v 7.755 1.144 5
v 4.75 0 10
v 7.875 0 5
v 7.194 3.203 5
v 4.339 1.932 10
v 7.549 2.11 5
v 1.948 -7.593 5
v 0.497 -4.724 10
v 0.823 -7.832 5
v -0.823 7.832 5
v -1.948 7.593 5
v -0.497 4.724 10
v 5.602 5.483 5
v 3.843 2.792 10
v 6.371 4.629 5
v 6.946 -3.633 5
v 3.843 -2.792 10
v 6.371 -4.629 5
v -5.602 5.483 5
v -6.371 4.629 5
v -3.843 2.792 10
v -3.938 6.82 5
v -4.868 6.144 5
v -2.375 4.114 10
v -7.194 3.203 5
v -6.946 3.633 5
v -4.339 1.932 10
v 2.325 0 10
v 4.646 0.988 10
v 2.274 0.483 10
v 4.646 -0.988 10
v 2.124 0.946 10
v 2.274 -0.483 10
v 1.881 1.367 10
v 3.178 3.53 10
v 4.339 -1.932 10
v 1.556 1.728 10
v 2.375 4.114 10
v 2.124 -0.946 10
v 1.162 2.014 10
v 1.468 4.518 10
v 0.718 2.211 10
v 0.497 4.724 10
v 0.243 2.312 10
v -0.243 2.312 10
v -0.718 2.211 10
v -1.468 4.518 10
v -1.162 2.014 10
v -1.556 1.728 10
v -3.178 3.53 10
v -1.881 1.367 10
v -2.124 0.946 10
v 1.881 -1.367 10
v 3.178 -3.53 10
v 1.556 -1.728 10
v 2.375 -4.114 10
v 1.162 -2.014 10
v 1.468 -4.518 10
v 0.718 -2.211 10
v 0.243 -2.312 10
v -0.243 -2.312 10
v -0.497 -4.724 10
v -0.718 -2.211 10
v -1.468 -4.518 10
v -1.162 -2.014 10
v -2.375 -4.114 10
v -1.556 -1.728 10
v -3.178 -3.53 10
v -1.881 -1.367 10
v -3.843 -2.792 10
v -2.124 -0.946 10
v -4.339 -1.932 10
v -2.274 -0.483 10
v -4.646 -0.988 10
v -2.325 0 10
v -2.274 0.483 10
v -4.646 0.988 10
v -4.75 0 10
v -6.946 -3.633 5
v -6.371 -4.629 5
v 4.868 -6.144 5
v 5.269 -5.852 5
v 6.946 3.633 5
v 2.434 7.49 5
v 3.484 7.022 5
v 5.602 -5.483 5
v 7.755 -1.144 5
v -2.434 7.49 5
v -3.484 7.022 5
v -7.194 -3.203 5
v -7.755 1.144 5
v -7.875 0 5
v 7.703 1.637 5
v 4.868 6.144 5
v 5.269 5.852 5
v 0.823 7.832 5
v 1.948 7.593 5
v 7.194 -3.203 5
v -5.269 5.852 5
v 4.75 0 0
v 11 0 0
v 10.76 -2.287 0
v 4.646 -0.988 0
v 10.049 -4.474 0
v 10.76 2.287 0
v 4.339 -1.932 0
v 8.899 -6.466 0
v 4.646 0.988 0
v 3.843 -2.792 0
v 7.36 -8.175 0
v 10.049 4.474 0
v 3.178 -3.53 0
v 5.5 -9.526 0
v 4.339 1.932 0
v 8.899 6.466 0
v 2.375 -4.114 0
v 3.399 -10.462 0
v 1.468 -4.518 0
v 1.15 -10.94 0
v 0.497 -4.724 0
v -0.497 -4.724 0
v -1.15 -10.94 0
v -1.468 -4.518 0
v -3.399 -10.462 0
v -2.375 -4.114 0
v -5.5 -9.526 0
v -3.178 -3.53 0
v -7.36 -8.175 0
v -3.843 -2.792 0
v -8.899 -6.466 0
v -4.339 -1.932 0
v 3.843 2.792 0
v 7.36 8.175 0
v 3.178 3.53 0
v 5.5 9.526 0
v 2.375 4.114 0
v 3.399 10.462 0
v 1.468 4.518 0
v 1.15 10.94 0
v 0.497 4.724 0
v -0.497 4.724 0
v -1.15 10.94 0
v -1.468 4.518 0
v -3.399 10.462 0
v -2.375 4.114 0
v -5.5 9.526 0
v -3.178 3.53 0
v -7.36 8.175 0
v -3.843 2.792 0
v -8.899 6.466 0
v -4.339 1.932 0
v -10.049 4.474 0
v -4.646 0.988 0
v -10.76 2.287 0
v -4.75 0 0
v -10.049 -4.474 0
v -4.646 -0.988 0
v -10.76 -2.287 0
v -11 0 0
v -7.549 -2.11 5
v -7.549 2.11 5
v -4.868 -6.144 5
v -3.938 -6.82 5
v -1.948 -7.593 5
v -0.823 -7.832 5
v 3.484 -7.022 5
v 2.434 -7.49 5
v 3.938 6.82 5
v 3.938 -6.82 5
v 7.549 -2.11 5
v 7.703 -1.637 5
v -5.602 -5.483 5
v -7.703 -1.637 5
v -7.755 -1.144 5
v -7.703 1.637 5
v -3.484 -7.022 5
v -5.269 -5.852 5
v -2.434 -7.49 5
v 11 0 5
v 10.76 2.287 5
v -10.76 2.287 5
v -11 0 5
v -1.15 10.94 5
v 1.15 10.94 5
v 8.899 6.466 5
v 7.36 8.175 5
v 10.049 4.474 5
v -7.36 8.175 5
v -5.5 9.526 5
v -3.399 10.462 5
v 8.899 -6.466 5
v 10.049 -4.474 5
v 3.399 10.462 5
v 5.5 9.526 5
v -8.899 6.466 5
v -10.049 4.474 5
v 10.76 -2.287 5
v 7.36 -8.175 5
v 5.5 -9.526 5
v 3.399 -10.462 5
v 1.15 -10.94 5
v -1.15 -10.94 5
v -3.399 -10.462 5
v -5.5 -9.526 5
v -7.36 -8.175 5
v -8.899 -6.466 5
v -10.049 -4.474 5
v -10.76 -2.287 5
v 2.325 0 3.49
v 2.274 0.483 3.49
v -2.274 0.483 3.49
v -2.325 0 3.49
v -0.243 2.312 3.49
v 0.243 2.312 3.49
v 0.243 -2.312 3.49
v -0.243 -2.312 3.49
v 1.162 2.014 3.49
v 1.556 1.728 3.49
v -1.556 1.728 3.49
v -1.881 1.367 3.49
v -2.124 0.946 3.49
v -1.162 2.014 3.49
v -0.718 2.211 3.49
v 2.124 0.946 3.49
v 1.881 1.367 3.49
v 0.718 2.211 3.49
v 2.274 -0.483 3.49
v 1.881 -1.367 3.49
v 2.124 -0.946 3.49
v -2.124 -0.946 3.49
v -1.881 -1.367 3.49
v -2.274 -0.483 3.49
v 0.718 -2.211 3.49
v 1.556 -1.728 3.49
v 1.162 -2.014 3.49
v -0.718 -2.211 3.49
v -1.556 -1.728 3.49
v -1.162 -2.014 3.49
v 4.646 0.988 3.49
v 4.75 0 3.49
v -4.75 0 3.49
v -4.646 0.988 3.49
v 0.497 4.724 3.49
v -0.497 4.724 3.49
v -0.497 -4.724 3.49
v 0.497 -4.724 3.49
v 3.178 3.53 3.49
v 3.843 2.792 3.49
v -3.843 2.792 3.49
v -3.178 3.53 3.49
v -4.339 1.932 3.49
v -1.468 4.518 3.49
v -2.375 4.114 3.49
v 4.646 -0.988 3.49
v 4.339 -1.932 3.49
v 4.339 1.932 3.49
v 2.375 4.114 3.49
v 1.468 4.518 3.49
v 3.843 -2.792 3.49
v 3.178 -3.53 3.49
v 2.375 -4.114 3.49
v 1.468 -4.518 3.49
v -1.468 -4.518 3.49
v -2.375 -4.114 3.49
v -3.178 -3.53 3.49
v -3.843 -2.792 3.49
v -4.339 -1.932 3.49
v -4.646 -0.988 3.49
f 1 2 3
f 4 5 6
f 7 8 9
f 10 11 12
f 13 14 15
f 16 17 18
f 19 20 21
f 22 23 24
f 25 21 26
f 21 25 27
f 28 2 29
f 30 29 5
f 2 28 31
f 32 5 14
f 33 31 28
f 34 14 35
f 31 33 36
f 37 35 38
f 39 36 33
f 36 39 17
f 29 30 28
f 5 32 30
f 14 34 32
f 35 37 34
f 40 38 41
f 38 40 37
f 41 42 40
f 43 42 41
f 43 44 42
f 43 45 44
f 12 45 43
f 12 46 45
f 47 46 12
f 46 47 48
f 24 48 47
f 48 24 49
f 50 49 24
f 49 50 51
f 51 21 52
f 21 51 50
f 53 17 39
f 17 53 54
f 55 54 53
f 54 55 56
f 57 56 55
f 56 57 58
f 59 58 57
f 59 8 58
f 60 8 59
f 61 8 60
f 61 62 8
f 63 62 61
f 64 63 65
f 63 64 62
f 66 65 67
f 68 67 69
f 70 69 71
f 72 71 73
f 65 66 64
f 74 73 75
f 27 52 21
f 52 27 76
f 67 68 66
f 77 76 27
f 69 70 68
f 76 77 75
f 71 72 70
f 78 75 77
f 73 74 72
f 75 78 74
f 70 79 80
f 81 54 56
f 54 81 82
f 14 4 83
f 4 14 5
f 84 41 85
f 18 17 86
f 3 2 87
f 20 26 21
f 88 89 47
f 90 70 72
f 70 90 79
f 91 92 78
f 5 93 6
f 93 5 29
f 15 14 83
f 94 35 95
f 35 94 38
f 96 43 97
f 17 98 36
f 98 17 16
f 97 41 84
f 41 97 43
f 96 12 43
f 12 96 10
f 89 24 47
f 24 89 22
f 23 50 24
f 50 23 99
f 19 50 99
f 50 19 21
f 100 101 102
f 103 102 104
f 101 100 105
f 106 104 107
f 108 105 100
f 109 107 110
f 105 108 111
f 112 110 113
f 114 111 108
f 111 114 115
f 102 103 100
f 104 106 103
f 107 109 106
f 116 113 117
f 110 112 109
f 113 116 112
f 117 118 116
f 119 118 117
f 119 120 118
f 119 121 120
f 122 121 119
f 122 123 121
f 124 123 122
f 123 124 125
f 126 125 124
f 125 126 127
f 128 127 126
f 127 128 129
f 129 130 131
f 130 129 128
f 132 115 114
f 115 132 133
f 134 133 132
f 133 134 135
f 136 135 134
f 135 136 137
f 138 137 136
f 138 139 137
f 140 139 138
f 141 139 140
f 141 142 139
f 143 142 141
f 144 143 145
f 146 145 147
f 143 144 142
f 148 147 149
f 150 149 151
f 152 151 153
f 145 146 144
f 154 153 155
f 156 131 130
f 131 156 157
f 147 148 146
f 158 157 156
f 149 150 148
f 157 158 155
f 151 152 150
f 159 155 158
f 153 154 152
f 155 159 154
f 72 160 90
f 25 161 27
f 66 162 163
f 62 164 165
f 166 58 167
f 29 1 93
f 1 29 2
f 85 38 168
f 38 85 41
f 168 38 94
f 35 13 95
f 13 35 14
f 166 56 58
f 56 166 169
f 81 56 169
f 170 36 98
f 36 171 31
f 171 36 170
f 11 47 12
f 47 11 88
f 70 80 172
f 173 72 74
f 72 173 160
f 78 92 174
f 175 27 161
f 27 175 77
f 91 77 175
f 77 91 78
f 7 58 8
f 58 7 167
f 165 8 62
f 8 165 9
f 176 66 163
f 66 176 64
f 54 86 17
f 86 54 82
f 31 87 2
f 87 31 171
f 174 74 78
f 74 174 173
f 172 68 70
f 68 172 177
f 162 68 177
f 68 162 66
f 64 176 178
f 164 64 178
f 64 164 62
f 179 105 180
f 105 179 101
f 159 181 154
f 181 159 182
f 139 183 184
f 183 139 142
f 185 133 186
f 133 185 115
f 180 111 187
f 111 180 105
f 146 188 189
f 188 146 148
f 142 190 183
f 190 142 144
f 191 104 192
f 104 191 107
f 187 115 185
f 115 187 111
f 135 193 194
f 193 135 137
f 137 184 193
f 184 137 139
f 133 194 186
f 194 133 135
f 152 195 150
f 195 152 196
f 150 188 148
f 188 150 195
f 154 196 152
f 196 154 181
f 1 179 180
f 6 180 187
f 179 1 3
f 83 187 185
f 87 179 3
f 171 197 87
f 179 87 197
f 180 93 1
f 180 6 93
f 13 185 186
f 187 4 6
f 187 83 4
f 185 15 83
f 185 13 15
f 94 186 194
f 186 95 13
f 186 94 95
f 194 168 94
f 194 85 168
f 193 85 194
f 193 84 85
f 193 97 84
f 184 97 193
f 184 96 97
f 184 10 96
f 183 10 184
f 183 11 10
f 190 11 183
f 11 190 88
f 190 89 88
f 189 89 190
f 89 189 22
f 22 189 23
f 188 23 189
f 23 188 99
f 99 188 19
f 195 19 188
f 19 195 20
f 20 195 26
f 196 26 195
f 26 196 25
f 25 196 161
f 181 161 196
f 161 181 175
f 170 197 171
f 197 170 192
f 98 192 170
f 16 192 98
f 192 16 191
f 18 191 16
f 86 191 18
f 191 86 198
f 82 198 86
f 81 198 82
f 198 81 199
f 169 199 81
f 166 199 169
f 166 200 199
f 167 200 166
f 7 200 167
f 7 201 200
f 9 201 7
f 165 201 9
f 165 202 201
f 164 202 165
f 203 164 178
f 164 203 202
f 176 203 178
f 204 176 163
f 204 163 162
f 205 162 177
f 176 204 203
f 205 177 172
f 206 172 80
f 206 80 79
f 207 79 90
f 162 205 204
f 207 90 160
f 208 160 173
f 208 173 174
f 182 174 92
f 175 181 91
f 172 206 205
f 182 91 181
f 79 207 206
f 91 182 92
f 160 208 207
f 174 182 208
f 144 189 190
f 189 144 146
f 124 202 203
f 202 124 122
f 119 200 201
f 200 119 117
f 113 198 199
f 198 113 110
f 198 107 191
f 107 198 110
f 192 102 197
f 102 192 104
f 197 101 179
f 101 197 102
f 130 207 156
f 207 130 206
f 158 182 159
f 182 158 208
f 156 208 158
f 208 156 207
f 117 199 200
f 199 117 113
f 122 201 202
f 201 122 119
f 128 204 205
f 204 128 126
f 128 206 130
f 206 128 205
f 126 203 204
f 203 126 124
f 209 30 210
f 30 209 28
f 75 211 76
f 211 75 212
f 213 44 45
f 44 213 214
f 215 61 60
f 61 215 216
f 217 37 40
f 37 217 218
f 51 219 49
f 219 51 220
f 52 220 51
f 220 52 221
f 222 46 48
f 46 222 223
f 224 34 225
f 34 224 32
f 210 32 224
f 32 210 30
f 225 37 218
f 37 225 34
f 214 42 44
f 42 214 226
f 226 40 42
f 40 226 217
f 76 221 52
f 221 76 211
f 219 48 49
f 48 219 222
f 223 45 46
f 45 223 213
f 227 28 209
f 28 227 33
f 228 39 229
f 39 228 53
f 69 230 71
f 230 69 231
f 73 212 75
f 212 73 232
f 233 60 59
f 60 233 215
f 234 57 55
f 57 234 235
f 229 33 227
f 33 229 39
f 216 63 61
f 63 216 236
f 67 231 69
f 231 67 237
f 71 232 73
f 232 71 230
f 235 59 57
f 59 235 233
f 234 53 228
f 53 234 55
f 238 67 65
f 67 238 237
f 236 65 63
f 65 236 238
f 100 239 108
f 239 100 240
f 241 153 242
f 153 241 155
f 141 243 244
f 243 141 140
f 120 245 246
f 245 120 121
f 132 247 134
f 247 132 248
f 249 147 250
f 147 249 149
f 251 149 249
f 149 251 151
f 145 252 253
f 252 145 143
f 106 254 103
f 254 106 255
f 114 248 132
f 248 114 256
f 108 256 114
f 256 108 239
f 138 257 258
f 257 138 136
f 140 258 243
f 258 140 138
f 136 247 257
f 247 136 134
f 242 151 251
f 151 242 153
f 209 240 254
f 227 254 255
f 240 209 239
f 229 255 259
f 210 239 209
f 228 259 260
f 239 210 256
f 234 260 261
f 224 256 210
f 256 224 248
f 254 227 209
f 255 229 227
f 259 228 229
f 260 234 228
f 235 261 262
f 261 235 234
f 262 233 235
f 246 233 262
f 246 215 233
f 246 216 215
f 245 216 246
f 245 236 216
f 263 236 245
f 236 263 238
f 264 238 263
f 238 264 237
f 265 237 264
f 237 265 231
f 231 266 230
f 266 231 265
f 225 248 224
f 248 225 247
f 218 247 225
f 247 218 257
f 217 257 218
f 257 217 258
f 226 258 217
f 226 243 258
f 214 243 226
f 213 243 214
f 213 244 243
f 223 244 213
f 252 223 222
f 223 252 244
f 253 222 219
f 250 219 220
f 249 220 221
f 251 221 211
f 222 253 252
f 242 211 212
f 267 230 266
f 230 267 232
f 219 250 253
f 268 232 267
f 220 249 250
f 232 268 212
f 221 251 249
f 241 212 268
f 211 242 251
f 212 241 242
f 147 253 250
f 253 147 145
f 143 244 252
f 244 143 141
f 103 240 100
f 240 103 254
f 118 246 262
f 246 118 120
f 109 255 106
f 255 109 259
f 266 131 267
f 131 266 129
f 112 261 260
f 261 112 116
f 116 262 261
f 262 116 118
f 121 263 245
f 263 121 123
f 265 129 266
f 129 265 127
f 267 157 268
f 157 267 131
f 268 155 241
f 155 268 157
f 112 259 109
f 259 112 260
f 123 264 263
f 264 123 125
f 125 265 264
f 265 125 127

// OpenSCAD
// 2020-12-23 Countersunk foot

boltDiameter = 4.65;
boltHeadDiameter = 9.5;
boltHeadThickness = 3.5;
footDiameter = 22;
footThickness = 5;


boltRadius = boltDiameter/2;
boltHeadRadius = boltHeadDiameter/2;
footRadius = footDiameter/2;

$fn=30;
$vpr= [150,$t*360,0];

difference(){
    translate([0,0,0]){
        cylinder(footThickness*2, footRadius, boltHeadRadius);
        cylinder(footThickness, footRadius, footRadius);
    }
    
    translate([0,0,-0.01]){
        cylinder(footThickness*5, boltRadius, boltRadius, center = true);
        cylinder(boltHeadThickness, boltHeadRadius, boltHeadRadius);
    }
}
